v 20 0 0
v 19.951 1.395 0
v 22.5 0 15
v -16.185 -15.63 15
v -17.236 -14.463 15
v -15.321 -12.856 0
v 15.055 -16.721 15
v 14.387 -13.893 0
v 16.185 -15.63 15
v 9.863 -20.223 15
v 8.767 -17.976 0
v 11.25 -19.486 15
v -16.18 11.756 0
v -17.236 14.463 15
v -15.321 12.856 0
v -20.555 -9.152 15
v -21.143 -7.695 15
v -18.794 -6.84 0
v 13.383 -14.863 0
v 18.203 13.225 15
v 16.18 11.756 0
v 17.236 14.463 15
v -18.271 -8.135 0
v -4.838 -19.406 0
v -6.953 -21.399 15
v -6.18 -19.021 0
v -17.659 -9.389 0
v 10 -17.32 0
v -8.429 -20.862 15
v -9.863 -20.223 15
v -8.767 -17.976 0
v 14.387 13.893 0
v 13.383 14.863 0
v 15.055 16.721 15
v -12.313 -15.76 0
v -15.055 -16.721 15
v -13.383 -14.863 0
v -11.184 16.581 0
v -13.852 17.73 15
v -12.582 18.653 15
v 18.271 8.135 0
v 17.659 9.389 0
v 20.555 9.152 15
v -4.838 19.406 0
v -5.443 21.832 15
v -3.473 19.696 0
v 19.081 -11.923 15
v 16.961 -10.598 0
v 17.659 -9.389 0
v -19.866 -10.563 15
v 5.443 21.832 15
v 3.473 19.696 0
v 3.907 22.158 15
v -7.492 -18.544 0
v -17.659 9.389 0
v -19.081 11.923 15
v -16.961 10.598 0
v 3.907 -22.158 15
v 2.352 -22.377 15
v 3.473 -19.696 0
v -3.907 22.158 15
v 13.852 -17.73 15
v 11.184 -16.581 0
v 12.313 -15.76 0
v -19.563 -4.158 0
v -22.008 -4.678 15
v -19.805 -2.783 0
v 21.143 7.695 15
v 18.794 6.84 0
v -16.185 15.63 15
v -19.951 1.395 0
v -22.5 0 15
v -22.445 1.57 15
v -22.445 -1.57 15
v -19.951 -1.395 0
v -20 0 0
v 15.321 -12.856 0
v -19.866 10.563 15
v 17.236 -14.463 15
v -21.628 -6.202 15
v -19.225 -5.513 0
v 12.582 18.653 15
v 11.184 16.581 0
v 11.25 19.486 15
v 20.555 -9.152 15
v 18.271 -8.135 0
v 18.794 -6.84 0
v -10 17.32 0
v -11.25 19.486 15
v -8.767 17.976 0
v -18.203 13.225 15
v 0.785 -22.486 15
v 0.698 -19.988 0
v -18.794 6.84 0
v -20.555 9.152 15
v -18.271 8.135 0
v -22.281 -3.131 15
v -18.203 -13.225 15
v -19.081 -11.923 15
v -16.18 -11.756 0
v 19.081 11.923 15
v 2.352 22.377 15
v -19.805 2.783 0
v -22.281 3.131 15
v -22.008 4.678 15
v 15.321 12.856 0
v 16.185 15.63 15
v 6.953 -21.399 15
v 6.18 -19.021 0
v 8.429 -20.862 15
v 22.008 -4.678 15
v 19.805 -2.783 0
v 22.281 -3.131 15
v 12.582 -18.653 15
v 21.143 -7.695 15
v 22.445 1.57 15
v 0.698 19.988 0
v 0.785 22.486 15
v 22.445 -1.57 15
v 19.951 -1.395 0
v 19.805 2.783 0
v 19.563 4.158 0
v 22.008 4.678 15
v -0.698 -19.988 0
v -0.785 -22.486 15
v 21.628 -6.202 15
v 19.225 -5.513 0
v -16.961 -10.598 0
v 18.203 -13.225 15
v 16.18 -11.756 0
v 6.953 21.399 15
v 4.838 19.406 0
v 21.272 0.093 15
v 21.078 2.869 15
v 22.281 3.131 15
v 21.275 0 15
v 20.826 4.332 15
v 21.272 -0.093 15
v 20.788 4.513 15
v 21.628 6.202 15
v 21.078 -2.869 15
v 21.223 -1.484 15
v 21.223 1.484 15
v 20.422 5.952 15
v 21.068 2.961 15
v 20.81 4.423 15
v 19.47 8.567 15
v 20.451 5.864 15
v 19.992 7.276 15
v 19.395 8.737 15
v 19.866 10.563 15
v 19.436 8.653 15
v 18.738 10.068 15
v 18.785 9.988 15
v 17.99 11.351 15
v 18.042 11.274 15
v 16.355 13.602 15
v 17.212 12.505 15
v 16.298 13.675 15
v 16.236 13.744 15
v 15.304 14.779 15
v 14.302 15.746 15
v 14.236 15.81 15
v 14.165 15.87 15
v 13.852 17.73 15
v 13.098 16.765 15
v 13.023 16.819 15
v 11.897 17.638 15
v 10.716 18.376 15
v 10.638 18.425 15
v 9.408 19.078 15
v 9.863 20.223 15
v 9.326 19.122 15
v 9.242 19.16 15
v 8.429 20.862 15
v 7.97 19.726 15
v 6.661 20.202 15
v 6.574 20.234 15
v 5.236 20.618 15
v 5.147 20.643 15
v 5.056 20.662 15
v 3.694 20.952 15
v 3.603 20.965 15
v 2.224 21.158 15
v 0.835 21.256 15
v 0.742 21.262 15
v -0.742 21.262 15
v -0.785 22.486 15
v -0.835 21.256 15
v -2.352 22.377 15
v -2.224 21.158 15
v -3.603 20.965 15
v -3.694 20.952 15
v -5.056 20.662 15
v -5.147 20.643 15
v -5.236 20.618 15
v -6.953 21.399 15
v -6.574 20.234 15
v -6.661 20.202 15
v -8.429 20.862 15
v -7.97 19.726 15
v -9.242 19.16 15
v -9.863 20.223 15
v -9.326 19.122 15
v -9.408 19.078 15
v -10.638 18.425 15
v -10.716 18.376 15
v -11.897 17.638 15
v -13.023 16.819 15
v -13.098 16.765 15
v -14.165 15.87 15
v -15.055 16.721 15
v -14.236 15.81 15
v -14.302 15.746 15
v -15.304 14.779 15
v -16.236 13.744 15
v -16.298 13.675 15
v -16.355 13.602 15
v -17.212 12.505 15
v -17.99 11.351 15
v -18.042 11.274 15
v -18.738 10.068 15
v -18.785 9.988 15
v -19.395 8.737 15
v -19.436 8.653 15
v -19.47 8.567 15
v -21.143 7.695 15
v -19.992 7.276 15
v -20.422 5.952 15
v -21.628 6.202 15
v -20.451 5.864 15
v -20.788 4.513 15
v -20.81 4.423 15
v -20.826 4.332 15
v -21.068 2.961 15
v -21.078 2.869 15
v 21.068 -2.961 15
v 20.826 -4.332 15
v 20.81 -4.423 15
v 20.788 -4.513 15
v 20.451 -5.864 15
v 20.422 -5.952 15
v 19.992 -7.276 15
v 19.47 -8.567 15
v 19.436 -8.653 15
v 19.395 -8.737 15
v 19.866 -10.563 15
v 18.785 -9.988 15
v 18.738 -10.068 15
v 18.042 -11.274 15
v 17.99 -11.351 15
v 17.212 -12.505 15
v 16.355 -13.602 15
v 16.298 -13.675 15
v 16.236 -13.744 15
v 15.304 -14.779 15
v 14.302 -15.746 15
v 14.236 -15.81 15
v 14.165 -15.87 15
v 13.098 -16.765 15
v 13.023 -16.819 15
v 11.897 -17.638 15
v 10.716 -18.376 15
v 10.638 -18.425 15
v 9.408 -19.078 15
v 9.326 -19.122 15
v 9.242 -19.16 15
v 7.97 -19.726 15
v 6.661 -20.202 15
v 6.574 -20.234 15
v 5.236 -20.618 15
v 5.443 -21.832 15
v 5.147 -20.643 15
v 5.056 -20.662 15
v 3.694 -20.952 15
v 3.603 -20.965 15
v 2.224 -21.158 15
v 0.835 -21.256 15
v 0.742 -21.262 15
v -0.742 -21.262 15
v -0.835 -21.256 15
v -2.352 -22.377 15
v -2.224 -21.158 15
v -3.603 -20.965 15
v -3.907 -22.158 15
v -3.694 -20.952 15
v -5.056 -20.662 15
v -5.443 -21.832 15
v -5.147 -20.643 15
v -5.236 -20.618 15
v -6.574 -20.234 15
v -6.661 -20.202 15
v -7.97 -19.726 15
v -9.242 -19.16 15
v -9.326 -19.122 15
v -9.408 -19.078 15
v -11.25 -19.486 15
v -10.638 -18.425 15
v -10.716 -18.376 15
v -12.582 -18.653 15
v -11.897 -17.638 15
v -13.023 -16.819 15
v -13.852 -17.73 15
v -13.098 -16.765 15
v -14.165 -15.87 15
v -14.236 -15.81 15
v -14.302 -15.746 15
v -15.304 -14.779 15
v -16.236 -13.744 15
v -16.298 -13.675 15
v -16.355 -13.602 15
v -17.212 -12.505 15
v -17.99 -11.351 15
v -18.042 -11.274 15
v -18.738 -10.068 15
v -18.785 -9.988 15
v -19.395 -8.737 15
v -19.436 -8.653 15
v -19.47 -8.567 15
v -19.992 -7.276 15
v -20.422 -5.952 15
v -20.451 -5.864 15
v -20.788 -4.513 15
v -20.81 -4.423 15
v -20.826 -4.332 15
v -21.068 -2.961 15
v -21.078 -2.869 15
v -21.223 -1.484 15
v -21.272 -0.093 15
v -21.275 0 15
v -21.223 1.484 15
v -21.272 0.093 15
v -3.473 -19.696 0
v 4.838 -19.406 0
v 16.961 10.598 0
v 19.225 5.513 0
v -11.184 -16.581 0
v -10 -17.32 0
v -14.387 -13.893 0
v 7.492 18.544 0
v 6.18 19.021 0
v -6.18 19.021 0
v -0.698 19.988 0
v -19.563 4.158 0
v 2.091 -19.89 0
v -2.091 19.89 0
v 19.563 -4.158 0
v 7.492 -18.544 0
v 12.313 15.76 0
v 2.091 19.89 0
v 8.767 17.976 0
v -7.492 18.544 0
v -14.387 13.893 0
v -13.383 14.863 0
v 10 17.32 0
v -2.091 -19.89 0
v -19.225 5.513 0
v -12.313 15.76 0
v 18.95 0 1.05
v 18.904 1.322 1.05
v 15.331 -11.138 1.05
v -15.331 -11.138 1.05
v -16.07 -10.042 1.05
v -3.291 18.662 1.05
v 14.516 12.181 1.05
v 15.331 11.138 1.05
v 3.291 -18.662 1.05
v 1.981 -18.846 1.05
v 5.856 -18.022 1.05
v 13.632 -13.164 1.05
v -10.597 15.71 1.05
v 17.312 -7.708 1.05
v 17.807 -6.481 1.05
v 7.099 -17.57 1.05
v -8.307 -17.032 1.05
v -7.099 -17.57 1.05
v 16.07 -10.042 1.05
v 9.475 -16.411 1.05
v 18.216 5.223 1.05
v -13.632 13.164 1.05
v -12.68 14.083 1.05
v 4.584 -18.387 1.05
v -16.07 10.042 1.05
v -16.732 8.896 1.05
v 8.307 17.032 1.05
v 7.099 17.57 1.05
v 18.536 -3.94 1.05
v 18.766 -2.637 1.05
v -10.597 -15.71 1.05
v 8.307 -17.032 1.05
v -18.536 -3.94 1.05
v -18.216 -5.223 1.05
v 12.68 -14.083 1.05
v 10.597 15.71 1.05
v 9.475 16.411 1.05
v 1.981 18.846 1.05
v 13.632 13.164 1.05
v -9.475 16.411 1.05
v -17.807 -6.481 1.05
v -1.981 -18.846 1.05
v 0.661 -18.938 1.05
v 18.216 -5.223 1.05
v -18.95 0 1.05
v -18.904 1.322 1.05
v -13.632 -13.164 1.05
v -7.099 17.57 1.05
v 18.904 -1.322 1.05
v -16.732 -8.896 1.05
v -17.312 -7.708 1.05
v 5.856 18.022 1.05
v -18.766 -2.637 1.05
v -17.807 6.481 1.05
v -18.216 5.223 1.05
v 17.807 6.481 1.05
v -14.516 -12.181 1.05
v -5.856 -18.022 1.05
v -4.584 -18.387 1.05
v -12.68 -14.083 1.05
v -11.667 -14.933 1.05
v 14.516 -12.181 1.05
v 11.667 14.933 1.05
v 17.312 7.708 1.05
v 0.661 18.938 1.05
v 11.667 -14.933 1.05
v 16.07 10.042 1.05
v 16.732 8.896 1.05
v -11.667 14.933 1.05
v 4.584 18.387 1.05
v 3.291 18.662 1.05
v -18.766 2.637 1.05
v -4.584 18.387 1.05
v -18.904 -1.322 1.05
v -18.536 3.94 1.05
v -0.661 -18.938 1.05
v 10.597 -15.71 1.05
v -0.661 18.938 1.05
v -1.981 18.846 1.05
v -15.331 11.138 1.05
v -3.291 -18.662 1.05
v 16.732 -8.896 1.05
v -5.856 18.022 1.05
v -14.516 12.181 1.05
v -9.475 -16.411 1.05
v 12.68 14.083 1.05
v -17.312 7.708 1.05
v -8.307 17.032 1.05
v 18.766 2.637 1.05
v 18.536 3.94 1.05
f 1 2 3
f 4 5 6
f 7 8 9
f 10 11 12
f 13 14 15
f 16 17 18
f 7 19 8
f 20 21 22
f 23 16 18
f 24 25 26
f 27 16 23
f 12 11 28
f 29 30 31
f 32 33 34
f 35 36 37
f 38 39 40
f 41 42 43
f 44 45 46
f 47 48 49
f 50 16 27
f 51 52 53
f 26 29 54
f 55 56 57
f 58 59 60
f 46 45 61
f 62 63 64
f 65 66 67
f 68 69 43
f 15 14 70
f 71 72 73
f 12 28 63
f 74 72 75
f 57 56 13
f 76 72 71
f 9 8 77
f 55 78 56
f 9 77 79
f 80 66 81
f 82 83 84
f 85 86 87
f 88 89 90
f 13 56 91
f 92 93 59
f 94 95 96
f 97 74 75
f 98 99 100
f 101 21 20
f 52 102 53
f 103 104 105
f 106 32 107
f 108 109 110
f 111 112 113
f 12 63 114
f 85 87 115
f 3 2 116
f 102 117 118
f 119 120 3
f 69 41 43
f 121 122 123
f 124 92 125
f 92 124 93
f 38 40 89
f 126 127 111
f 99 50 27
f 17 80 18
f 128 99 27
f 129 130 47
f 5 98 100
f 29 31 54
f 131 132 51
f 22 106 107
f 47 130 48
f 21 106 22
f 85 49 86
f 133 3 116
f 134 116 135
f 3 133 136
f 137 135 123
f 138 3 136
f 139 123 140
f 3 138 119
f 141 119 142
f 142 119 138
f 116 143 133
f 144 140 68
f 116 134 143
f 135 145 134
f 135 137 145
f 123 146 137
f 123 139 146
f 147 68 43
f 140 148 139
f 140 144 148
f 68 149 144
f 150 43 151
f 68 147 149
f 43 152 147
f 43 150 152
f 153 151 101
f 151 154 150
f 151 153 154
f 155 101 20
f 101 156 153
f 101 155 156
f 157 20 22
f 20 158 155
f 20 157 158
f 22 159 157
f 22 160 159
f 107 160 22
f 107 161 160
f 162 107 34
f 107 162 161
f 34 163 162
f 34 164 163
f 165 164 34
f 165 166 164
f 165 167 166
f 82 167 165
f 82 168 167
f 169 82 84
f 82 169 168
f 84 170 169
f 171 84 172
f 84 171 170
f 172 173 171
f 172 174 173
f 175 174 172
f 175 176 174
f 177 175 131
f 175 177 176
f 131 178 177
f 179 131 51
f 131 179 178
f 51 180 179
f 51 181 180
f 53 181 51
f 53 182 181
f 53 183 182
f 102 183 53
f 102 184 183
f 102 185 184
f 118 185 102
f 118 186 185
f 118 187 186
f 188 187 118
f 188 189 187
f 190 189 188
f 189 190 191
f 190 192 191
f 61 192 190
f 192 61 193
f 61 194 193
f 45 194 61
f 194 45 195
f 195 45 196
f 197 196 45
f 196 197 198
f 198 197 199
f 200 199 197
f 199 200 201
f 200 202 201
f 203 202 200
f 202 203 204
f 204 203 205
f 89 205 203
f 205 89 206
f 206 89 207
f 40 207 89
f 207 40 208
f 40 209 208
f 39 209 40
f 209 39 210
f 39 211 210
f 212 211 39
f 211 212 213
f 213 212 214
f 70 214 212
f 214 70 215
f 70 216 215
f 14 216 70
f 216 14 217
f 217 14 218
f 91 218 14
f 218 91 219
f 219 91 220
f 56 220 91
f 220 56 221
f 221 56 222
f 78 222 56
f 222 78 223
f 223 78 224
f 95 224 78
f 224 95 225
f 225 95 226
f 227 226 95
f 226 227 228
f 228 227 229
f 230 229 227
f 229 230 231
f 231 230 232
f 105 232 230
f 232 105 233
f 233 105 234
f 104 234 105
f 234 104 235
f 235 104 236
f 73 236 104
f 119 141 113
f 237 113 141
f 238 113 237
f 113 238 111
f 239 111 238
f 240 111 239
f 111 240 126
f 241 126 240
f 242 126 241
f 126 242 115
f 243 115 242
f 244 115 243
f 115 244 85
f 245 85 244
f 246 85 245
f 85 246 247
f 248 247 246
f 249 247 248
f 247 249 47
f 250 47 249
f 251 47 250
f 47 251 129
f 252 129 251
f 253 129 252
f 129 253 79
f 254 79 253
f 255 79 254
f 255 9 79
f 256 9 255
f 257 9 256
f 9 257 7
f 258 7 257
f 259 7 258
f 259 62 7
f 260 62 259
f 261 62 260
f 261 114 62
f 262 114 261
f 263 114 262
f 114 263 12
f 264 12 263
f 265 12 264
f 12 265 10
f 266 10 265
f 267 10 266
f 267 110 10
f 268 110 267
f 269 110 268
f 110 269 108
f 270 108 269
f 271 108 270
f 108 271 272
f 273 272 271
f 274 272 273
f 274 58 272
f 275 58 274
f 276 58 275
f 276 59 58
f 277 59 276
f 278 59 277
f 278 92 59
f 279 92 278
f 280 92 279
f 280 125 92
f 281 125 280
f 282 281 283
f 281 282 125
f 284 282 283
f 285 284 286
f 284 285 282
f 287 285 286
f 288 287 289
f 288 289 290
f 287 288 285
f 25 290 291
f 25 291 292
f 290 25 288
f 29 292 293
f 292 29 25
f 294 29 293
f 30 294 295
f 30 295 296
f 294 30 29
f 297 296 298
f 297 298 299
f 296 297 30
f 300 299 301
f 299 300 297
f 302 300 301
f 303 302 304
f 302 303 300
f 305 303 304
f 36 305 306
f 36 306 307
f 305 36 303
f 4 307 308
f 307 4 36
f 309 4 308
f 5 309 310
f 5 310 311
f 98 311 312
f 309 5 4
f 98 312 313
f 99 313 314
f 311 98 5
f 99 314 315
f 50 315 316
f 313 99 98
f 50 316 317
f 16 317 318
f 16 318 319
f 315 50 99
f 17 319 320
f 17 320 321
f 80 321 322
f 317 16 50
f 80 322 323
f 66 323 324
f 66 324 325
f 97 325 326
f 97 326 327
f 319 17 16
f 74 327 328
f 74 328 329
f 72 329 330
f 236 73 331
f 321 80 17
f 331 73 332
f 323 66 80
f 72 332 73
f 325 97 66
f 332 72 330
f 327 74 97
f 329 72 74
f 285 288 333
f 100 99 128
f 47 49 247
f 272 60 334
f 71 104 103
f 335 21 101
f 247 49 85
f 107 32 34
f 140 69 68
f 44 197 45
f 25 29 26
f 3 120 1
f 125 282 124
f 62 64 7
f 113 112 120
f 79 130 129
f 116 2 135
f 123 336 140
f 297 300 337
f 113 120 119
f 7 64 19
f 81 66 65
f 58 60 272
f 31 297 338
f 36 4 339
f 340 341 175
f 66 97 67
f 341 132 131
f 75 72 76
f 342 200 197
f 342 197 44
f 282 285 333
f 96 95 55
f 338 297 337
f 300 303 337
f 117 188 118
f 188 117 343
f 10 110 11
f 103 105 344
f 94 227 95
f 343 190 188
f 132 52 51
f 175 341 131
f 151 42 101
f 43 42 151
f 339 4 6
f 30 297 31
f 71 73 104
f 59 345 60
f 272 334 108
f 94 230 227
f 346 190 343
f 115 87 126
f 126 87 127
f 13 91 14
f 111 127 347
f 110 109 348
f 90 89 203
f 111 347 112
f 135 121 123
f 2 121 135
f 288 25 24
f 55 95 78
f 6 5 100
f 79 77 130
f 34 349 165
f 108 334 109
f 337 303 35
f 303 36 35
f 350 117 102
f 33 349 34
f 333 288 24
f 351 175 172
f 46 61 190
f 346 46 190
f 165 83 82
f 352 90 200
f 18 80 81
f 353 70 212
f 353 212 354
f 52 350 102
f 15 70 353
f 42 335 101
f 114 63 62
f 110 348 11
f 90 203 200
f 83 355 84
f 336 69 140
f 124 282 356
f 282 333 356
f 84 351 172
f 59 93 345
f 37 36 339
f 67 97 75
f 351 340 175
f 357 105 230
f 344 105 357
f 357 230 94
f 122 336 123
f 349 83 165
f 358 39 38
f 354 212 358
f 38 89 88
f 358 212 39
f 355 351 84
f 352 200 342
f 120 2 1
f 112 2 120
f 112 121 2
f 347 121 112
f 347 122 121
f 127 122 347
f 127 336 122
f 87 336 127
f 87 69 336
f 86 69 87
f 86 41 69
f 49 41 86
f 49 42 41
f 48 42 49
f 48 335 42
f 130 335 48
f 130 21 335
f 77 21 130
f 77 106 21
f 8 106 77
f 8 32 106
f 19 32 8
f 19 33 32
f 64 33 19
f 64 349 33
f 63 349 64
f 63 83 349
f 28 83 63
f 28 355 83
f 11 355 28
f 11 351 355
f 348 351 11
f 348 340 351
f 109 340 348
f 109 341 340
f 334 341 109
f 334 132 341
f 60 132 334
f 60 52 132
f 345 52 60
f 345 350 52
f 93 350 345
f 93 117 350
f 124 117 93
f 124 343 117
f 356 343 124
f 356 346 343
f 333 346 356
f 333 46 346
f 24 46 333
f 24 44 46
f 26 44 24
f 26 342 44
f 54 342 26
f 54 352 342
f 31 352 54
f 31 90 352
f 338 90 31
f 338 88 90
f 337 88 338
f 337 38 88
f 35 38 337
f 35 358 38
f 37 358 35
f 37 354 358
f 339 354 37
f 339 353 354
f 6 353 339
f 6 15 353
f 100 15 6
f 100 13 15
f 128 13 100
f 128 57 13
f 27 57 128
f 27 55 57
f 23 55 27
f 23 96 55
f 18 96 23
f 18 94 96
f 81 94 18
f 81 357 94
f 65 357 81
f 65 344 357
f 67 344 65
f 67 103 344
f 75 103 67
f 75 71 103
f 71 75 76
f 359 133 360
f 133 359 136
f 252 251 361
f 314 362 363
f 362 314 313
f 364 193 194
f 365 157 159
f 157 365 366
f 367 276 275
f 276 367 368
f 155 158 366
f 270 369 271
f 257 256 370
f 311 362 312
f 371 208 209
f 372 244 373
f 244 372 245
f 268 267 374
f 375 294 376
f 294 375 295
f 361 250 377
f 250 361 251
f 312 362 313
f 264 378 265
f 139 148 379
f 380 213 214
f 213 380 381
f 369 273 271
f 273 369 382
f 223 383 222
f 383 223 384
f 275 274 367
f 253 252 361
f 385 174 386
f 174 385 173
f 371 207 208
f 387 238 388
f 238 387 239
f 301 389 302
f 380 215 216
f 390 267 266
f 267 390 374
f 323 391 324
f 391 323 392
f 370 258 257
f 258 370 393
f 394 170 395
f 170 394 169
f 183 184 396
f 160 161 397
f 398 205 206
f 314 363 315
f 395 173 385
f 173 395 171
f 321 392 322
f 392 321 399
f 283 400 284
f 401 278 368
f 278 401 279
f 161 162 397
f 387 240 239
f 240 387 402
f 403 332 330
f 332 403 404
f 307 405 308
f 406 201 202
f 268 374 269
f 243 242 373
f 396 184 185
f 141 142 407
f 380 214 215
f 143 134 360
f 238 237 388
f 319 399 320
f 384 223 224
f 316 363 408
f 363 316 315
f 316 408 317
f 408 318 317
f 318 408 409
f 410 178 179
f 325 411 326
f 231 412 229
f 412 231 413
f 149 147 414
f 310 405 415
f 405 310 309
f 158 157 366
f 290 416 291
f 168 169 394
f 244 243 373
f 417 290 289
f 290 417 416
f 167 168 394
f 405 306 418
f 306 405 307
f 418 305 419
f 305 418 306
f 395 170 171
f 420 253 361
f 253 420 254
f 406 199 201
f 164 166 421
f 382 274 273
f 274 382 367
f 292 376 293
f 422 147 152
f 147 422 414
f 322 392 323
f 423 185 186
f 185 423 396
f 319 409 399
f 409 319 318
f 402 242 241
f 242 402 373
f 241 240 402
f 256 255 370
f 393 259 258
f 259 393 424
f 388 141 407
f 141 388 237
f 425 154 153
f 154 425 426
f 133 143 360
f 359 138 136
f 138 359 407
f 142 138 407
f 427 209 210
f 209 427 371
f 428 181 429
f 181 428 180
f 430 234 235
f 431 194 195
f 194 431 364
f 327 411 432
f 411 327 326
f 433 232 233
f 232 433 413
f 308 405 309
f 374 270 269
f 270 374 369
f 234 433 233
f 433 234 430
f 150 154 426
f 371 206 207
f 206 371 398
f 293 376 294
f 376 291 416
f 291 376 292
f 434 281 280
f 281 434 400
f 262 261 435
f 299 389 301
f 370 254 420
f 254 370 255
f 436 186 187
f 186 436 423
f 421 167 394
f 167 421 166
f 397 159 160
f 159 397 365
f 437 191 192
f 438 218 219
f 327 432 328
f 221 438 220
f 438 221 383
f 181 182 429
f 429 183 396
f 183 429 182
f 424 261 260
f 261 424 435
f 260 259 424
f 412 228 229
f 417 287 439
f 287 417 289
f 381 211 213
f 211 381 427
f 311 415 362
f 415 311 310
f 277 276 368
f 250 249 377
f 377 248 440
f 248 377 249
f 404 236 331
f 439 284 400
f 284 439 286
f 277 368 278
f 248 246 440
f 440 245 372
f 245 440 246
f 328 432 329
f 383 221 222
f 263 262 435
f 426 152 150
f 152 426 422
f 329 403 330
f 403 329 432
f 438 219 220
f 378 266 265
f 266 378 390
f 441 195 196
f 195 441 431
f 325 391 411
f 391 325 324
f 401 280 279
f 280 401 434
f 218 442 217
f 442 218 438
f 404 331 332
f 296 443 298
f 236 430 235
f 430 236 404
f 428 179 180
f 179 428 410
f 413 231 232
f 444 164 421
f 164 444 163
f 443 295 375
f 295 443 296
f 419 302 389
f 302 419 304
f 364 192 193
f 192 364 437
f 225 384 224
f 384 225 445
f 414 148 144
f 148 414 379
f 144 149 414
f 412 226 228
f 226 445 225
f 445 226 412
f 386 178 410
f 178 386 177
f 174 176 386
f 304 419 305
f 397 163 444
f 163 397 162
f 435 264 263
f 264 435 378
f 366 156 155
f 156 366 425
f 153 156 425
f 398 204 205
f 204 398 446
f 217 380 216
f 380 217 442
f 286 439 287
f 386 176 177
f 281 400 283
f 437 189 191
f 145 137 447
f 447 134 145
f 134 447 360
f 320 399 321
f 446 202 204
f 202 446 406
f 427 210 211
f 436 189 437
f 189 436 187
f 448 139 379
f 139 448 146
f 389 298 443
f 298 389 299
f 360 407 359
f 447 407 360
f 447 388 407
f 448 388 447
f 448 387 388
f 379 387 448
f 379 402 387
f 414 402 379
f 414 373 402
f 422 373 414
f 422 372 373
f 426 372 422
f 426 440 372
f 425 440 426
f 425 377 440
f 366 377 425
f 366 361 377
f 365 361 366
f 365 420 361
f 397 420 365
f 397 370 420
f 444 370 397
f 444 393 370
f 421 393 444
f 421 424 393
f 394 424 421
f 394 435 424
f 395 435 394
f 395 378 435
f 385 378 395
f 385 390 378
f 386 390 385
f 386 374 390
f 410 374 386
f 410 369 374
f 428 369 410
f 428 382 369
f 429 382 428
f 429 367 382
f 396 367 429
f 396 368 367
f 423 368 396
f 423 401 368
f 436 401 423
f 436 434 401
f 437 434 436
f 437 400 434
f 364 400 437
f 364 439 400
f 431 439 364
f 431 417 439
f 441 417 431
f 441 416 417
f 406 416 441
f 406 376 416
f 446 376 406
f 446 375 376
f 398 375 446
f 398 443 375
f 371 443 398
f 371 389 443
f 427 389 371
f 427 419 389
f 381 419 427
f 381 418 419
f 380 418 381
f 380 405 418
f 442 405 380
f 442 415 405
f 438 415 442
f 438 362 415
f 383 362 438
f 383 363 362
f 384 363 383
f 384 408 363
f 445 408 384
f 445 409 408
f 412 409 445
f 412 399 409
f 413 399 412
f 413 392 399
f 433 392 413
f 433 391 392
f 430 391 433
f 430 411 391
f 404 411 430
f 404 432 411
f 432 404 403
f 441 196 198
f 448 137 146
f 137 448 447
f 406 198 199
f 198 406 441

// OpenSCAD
// Petrischale

dicke=6*0.35;//6 x Duesen-durchmesser des Druckers 
$fn=90;
D=40;
H=15;
N=5;//0 fuer senkrechte Waende
difference(){
cylinder(d1=D,d2=D+N,h=H);
translate([0,0,dicke/2])cylinder(d1=D-dicke,d2=D+N-dicke,h=H);
}
